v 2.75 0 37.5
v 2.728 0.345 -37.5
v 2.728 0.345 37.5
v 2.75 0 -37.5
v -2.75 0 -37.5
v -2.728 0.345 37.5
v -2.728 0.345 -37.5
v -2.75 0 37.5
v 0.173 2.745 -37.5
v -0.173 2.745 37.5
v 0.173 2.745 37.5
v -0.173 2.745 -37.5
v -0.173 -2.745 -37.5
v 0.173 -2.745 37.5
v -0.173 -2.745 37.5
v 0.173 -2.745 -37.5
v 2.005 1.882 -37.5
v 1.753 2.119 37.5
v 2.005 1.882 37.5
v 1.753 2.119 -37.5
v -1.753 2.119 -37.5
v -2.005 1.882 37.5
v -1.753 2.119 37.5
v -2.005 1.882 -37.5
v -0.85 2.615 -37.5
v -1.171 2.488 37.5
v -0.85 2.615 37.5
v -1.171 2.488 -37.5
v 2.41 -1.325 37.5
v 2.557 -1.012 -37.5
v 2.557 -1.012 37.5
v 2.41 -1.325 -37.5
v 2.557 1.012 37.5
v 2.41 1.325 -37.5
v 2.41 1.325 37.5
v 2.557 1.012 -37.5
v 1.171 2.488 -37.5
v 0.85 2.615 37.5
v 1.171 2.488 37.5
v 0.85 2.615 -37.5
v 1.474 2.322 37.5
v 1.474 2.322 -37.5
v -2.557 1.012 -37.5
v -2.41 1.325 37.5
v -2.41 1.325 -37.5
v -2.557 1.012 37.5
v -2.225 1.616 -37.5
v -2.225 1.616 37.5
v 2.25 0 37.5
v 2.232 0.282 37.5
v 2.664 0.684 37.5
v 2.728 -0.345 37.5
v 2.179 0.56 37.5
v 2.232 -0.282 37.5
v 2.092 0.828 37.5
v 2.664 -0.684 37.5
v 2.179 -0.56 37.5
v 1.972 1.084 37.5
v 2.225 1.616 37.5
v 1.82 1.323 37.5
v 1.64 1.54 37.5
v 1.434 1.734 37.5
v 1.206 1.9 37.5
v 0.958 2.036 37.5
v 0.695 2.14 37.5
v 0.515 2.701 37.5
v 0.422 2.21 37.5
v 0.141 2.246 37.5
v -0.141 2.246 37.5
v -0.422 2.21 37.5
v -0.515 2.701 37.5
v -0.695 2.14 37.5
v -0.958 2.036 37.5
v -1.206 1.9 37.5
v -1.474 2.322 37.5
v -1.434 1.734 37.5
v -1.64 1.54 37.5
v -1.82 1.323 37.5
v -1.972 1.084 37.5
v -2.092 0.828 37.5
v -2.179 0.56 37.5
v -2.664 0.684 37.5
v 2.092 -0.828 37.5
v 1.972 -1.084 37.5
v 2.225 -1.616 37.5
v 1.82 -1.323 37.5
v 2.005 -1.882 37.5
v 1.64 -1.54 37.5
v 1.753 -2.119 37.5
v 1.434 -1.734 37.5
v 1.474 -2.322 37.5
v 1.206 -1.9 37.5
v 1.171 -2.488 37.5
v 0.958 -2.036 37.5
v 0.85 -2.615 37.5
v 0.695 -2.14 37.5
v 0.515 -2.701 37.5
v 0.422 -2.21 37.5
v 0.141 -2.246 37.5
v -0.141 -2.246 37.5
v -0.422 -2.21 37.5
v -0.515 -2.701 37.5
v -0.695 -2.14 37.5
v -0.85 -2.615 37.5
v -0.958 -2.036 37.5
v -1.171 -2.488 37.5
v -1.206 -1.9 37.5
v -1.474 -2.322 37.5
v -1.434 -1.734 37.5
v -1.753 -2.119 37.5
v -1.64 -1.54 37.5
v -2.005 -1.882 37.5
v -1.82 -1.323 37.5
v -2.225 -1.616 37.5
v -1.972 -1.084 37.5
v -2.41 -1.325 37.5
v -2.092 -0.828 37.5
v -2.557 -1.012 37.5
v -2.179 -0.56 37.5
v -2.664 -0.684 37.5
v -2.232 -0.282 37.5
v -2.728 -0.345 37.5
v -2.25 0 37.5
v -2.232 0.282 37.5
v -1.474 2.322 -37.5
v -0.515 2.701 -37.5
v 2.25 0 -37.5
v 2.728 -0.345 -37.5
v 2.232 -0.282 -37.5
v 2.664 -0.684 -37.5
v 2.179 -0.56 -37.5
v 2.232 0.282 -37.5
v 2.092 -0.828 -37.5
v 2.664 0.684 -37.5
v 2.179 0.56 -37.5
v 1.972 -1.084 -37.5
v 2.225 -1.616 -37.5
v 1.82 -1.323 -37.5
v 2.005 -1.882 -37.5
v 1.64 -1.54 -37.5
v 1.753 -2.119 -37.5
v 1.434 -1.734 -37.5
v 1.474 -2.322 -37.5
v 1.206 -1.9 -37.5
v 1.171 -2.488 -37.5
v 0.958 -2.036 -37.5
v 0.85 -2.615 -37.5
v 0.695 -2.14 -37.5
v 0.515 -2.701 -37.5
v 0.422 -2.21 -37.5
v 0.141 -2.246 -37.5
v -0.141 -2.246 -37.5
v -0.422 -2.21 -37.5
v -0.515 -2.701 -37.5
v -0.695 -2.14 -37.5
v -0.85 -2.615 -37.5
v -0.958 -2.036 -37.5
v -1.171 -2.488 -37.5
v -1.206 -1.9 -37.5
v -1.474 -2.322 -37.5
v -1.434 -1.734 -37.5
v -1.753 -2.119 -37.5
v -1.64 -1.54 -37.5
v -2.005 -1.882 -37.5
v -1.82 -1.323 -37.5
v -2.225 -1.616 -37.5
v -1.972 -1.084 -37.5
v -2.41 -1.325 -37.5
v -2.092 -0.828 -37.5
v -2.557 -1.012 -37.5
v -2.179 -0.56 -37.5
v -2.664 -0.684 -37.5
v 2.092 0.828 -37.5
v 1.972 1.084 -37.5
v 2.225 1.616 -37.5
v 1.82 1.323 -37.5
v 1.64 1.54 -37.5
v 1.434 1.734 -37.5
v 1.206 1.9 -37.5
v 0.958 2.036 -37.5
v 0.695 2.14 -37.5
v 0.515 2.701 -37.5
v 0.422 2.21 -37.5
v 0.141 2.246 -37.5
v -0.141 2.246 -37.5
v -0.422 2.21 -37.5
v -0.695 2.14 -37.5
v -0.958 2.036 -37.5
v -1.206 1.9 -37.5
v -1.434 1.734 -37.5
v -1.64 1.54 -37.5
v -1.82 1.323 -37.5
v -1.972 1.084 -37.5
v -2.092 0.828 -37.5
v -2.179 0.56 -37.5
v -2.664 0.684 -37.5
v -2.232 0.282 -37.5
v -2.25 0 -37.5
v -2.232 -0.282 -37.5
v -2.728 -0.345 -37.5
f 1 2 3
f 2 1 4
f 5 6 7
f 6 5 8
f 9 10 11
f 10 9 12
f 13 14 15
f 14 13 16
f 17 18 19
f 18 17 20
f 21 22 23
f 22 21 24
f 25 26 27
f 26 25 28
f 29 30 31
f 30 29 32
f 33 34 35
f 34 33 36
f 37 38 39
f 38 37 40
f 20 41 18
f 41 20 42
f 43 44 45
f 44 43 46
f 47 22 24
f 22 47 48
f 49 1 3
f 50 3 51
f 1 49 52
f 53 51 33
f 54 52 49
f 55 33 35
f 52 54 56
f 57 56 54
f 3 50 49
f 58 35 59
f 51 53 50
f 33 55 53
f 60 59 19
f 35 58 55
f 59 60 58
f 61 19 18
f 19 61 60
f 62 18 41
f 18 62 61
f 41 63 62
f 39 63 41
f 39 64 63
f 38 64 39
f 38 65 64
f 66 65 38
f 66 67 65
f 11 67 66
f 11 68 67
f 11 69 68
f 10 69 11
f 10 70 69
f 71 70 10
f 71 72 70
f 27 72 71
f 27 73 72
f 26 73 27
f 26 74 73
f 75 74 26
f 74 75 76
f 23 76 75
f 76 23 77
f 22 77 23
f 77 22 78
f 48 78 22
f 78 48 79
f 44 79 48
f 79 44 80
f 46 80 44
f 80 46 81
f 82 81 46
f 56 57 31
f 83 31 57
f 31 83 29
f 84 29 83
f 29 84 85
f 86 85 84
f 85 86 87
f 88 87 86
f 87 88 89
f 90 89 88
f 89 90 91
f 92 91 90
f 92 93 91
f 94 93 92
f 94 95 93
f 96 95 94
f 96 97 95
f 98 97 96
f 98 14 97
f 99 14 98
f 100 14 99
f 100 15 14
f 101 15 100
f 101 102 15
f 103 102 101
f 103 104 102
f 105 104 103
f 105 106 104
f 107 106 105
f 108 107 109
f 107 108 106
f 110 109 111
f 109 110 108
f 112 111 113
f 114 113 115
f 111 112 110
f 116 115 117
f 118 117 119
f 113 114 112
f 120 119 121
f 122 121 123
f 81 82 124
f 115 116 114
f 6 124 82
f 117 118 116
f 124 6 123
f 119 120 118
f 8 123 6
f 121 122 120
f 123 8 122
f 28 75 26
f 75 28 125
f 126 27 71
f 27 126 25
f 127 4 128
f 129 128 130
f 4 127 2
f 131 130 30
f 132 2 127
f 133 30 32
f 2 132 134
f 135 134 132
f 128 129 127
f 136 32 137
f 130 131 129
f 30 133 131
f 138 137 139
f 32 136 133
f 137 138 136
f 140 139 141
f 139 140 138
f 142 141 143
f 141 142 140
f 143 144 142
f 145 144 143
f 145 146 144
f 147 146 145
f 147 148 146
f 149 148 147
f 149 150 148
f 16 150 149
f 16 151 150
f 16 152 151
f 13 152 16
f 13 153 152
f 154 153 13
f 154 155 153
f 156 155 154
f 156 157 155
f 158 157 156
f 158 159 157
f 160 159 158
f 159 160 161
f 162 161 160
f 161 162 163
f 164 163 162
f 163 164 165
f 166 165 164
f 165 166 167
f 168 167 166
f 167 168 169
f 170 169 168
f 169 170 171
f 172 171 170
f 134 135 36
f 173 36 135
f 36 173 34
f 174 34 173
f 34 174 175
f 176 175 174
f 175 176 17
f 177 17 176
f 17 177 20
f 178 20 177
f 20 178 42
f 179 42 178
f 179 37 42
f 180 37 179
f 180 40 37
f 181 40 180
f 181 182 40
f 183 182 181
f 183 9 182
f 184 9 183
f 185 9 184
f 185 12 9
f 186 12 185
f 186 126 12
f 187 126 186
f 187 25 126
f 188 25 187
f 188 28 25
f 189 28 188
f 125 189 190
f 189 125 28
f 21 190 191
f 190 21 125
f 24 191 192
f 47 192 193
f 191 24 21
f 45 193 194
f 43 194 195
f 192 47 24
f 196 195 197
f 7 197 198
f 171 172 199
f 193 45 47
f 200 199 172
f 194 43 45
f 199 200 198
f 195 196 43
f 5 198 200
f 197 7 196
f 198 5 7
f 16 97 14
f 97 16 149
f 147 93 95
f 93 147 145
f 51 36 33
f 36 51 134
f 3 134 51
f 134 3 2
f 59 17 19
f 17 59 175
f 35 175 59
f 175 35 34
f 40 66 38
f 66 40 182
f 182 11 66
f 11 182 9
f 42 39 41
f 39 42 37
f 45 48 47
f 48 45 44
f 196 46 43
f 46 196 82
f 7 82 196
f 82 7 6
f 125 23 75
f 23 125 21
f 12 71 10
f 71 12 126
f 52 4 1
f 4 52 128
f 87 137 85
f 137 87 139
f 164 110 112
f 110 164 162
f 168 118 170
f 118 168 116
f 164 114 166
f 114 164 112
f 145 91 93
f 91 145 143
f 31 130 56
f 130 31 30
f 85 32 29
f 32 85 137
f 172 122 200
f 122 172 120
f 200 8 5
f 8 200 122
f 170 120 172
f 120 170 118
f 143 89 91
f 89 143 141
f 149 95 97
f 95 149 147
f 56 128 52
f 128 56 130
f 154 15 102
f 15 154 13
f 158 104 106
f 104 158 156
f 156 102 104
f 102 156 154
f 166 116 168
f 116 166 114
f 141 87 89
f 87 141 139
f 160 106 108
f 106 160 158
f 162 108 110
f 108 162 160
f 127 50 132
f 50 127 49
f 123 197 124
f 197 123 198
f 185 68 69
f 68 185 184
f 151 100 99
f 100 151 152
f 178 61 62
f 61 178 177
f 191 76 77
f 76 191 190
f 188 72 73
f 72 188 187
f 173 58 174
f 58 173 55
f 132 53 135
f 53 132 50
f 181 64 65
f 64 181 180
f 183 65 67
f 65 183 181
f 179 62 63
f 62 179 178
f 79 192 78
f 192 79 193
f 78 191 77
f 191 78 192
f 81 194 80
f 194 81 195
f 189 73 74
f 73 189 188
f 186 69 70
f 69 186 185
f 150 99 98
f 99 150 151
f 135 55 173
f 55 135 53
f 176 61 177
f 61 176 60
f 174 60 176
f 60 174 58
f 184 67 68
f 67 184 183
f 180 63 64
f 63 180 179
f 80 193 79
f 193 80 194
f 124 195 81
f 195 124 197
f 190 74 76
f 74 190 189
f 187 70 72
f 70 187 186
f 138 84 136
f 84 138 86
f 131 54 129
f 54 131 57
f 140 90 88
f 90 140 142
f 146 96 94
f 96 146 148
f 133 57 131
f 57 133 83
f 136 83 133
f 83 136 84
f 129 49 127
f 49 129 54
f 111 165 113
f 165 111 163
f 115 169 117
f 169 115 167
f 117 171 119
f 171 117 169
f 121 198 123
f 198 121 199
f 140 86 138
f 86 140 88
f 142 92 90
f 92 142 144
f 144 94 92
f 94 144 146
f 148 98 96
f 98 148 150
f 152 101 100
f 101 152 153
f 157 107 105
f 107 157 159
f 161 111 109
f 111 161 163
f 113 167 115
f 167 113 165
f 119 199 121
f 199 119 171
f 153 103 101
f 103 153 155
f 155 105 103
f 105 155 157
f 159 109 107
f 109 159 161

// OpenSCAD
$fn = 50;


difference() {
	union() {
		translate(v = [0, 0, -37.5000000000]) {
			cylinder(h = 75, r = 2.7500000000);
		}
	}
	union() {
		translate(v = [0, 0, -100.0000000000]) {
			cylinder(h = 200, r = 2.2500000000);
		}
	}
}
